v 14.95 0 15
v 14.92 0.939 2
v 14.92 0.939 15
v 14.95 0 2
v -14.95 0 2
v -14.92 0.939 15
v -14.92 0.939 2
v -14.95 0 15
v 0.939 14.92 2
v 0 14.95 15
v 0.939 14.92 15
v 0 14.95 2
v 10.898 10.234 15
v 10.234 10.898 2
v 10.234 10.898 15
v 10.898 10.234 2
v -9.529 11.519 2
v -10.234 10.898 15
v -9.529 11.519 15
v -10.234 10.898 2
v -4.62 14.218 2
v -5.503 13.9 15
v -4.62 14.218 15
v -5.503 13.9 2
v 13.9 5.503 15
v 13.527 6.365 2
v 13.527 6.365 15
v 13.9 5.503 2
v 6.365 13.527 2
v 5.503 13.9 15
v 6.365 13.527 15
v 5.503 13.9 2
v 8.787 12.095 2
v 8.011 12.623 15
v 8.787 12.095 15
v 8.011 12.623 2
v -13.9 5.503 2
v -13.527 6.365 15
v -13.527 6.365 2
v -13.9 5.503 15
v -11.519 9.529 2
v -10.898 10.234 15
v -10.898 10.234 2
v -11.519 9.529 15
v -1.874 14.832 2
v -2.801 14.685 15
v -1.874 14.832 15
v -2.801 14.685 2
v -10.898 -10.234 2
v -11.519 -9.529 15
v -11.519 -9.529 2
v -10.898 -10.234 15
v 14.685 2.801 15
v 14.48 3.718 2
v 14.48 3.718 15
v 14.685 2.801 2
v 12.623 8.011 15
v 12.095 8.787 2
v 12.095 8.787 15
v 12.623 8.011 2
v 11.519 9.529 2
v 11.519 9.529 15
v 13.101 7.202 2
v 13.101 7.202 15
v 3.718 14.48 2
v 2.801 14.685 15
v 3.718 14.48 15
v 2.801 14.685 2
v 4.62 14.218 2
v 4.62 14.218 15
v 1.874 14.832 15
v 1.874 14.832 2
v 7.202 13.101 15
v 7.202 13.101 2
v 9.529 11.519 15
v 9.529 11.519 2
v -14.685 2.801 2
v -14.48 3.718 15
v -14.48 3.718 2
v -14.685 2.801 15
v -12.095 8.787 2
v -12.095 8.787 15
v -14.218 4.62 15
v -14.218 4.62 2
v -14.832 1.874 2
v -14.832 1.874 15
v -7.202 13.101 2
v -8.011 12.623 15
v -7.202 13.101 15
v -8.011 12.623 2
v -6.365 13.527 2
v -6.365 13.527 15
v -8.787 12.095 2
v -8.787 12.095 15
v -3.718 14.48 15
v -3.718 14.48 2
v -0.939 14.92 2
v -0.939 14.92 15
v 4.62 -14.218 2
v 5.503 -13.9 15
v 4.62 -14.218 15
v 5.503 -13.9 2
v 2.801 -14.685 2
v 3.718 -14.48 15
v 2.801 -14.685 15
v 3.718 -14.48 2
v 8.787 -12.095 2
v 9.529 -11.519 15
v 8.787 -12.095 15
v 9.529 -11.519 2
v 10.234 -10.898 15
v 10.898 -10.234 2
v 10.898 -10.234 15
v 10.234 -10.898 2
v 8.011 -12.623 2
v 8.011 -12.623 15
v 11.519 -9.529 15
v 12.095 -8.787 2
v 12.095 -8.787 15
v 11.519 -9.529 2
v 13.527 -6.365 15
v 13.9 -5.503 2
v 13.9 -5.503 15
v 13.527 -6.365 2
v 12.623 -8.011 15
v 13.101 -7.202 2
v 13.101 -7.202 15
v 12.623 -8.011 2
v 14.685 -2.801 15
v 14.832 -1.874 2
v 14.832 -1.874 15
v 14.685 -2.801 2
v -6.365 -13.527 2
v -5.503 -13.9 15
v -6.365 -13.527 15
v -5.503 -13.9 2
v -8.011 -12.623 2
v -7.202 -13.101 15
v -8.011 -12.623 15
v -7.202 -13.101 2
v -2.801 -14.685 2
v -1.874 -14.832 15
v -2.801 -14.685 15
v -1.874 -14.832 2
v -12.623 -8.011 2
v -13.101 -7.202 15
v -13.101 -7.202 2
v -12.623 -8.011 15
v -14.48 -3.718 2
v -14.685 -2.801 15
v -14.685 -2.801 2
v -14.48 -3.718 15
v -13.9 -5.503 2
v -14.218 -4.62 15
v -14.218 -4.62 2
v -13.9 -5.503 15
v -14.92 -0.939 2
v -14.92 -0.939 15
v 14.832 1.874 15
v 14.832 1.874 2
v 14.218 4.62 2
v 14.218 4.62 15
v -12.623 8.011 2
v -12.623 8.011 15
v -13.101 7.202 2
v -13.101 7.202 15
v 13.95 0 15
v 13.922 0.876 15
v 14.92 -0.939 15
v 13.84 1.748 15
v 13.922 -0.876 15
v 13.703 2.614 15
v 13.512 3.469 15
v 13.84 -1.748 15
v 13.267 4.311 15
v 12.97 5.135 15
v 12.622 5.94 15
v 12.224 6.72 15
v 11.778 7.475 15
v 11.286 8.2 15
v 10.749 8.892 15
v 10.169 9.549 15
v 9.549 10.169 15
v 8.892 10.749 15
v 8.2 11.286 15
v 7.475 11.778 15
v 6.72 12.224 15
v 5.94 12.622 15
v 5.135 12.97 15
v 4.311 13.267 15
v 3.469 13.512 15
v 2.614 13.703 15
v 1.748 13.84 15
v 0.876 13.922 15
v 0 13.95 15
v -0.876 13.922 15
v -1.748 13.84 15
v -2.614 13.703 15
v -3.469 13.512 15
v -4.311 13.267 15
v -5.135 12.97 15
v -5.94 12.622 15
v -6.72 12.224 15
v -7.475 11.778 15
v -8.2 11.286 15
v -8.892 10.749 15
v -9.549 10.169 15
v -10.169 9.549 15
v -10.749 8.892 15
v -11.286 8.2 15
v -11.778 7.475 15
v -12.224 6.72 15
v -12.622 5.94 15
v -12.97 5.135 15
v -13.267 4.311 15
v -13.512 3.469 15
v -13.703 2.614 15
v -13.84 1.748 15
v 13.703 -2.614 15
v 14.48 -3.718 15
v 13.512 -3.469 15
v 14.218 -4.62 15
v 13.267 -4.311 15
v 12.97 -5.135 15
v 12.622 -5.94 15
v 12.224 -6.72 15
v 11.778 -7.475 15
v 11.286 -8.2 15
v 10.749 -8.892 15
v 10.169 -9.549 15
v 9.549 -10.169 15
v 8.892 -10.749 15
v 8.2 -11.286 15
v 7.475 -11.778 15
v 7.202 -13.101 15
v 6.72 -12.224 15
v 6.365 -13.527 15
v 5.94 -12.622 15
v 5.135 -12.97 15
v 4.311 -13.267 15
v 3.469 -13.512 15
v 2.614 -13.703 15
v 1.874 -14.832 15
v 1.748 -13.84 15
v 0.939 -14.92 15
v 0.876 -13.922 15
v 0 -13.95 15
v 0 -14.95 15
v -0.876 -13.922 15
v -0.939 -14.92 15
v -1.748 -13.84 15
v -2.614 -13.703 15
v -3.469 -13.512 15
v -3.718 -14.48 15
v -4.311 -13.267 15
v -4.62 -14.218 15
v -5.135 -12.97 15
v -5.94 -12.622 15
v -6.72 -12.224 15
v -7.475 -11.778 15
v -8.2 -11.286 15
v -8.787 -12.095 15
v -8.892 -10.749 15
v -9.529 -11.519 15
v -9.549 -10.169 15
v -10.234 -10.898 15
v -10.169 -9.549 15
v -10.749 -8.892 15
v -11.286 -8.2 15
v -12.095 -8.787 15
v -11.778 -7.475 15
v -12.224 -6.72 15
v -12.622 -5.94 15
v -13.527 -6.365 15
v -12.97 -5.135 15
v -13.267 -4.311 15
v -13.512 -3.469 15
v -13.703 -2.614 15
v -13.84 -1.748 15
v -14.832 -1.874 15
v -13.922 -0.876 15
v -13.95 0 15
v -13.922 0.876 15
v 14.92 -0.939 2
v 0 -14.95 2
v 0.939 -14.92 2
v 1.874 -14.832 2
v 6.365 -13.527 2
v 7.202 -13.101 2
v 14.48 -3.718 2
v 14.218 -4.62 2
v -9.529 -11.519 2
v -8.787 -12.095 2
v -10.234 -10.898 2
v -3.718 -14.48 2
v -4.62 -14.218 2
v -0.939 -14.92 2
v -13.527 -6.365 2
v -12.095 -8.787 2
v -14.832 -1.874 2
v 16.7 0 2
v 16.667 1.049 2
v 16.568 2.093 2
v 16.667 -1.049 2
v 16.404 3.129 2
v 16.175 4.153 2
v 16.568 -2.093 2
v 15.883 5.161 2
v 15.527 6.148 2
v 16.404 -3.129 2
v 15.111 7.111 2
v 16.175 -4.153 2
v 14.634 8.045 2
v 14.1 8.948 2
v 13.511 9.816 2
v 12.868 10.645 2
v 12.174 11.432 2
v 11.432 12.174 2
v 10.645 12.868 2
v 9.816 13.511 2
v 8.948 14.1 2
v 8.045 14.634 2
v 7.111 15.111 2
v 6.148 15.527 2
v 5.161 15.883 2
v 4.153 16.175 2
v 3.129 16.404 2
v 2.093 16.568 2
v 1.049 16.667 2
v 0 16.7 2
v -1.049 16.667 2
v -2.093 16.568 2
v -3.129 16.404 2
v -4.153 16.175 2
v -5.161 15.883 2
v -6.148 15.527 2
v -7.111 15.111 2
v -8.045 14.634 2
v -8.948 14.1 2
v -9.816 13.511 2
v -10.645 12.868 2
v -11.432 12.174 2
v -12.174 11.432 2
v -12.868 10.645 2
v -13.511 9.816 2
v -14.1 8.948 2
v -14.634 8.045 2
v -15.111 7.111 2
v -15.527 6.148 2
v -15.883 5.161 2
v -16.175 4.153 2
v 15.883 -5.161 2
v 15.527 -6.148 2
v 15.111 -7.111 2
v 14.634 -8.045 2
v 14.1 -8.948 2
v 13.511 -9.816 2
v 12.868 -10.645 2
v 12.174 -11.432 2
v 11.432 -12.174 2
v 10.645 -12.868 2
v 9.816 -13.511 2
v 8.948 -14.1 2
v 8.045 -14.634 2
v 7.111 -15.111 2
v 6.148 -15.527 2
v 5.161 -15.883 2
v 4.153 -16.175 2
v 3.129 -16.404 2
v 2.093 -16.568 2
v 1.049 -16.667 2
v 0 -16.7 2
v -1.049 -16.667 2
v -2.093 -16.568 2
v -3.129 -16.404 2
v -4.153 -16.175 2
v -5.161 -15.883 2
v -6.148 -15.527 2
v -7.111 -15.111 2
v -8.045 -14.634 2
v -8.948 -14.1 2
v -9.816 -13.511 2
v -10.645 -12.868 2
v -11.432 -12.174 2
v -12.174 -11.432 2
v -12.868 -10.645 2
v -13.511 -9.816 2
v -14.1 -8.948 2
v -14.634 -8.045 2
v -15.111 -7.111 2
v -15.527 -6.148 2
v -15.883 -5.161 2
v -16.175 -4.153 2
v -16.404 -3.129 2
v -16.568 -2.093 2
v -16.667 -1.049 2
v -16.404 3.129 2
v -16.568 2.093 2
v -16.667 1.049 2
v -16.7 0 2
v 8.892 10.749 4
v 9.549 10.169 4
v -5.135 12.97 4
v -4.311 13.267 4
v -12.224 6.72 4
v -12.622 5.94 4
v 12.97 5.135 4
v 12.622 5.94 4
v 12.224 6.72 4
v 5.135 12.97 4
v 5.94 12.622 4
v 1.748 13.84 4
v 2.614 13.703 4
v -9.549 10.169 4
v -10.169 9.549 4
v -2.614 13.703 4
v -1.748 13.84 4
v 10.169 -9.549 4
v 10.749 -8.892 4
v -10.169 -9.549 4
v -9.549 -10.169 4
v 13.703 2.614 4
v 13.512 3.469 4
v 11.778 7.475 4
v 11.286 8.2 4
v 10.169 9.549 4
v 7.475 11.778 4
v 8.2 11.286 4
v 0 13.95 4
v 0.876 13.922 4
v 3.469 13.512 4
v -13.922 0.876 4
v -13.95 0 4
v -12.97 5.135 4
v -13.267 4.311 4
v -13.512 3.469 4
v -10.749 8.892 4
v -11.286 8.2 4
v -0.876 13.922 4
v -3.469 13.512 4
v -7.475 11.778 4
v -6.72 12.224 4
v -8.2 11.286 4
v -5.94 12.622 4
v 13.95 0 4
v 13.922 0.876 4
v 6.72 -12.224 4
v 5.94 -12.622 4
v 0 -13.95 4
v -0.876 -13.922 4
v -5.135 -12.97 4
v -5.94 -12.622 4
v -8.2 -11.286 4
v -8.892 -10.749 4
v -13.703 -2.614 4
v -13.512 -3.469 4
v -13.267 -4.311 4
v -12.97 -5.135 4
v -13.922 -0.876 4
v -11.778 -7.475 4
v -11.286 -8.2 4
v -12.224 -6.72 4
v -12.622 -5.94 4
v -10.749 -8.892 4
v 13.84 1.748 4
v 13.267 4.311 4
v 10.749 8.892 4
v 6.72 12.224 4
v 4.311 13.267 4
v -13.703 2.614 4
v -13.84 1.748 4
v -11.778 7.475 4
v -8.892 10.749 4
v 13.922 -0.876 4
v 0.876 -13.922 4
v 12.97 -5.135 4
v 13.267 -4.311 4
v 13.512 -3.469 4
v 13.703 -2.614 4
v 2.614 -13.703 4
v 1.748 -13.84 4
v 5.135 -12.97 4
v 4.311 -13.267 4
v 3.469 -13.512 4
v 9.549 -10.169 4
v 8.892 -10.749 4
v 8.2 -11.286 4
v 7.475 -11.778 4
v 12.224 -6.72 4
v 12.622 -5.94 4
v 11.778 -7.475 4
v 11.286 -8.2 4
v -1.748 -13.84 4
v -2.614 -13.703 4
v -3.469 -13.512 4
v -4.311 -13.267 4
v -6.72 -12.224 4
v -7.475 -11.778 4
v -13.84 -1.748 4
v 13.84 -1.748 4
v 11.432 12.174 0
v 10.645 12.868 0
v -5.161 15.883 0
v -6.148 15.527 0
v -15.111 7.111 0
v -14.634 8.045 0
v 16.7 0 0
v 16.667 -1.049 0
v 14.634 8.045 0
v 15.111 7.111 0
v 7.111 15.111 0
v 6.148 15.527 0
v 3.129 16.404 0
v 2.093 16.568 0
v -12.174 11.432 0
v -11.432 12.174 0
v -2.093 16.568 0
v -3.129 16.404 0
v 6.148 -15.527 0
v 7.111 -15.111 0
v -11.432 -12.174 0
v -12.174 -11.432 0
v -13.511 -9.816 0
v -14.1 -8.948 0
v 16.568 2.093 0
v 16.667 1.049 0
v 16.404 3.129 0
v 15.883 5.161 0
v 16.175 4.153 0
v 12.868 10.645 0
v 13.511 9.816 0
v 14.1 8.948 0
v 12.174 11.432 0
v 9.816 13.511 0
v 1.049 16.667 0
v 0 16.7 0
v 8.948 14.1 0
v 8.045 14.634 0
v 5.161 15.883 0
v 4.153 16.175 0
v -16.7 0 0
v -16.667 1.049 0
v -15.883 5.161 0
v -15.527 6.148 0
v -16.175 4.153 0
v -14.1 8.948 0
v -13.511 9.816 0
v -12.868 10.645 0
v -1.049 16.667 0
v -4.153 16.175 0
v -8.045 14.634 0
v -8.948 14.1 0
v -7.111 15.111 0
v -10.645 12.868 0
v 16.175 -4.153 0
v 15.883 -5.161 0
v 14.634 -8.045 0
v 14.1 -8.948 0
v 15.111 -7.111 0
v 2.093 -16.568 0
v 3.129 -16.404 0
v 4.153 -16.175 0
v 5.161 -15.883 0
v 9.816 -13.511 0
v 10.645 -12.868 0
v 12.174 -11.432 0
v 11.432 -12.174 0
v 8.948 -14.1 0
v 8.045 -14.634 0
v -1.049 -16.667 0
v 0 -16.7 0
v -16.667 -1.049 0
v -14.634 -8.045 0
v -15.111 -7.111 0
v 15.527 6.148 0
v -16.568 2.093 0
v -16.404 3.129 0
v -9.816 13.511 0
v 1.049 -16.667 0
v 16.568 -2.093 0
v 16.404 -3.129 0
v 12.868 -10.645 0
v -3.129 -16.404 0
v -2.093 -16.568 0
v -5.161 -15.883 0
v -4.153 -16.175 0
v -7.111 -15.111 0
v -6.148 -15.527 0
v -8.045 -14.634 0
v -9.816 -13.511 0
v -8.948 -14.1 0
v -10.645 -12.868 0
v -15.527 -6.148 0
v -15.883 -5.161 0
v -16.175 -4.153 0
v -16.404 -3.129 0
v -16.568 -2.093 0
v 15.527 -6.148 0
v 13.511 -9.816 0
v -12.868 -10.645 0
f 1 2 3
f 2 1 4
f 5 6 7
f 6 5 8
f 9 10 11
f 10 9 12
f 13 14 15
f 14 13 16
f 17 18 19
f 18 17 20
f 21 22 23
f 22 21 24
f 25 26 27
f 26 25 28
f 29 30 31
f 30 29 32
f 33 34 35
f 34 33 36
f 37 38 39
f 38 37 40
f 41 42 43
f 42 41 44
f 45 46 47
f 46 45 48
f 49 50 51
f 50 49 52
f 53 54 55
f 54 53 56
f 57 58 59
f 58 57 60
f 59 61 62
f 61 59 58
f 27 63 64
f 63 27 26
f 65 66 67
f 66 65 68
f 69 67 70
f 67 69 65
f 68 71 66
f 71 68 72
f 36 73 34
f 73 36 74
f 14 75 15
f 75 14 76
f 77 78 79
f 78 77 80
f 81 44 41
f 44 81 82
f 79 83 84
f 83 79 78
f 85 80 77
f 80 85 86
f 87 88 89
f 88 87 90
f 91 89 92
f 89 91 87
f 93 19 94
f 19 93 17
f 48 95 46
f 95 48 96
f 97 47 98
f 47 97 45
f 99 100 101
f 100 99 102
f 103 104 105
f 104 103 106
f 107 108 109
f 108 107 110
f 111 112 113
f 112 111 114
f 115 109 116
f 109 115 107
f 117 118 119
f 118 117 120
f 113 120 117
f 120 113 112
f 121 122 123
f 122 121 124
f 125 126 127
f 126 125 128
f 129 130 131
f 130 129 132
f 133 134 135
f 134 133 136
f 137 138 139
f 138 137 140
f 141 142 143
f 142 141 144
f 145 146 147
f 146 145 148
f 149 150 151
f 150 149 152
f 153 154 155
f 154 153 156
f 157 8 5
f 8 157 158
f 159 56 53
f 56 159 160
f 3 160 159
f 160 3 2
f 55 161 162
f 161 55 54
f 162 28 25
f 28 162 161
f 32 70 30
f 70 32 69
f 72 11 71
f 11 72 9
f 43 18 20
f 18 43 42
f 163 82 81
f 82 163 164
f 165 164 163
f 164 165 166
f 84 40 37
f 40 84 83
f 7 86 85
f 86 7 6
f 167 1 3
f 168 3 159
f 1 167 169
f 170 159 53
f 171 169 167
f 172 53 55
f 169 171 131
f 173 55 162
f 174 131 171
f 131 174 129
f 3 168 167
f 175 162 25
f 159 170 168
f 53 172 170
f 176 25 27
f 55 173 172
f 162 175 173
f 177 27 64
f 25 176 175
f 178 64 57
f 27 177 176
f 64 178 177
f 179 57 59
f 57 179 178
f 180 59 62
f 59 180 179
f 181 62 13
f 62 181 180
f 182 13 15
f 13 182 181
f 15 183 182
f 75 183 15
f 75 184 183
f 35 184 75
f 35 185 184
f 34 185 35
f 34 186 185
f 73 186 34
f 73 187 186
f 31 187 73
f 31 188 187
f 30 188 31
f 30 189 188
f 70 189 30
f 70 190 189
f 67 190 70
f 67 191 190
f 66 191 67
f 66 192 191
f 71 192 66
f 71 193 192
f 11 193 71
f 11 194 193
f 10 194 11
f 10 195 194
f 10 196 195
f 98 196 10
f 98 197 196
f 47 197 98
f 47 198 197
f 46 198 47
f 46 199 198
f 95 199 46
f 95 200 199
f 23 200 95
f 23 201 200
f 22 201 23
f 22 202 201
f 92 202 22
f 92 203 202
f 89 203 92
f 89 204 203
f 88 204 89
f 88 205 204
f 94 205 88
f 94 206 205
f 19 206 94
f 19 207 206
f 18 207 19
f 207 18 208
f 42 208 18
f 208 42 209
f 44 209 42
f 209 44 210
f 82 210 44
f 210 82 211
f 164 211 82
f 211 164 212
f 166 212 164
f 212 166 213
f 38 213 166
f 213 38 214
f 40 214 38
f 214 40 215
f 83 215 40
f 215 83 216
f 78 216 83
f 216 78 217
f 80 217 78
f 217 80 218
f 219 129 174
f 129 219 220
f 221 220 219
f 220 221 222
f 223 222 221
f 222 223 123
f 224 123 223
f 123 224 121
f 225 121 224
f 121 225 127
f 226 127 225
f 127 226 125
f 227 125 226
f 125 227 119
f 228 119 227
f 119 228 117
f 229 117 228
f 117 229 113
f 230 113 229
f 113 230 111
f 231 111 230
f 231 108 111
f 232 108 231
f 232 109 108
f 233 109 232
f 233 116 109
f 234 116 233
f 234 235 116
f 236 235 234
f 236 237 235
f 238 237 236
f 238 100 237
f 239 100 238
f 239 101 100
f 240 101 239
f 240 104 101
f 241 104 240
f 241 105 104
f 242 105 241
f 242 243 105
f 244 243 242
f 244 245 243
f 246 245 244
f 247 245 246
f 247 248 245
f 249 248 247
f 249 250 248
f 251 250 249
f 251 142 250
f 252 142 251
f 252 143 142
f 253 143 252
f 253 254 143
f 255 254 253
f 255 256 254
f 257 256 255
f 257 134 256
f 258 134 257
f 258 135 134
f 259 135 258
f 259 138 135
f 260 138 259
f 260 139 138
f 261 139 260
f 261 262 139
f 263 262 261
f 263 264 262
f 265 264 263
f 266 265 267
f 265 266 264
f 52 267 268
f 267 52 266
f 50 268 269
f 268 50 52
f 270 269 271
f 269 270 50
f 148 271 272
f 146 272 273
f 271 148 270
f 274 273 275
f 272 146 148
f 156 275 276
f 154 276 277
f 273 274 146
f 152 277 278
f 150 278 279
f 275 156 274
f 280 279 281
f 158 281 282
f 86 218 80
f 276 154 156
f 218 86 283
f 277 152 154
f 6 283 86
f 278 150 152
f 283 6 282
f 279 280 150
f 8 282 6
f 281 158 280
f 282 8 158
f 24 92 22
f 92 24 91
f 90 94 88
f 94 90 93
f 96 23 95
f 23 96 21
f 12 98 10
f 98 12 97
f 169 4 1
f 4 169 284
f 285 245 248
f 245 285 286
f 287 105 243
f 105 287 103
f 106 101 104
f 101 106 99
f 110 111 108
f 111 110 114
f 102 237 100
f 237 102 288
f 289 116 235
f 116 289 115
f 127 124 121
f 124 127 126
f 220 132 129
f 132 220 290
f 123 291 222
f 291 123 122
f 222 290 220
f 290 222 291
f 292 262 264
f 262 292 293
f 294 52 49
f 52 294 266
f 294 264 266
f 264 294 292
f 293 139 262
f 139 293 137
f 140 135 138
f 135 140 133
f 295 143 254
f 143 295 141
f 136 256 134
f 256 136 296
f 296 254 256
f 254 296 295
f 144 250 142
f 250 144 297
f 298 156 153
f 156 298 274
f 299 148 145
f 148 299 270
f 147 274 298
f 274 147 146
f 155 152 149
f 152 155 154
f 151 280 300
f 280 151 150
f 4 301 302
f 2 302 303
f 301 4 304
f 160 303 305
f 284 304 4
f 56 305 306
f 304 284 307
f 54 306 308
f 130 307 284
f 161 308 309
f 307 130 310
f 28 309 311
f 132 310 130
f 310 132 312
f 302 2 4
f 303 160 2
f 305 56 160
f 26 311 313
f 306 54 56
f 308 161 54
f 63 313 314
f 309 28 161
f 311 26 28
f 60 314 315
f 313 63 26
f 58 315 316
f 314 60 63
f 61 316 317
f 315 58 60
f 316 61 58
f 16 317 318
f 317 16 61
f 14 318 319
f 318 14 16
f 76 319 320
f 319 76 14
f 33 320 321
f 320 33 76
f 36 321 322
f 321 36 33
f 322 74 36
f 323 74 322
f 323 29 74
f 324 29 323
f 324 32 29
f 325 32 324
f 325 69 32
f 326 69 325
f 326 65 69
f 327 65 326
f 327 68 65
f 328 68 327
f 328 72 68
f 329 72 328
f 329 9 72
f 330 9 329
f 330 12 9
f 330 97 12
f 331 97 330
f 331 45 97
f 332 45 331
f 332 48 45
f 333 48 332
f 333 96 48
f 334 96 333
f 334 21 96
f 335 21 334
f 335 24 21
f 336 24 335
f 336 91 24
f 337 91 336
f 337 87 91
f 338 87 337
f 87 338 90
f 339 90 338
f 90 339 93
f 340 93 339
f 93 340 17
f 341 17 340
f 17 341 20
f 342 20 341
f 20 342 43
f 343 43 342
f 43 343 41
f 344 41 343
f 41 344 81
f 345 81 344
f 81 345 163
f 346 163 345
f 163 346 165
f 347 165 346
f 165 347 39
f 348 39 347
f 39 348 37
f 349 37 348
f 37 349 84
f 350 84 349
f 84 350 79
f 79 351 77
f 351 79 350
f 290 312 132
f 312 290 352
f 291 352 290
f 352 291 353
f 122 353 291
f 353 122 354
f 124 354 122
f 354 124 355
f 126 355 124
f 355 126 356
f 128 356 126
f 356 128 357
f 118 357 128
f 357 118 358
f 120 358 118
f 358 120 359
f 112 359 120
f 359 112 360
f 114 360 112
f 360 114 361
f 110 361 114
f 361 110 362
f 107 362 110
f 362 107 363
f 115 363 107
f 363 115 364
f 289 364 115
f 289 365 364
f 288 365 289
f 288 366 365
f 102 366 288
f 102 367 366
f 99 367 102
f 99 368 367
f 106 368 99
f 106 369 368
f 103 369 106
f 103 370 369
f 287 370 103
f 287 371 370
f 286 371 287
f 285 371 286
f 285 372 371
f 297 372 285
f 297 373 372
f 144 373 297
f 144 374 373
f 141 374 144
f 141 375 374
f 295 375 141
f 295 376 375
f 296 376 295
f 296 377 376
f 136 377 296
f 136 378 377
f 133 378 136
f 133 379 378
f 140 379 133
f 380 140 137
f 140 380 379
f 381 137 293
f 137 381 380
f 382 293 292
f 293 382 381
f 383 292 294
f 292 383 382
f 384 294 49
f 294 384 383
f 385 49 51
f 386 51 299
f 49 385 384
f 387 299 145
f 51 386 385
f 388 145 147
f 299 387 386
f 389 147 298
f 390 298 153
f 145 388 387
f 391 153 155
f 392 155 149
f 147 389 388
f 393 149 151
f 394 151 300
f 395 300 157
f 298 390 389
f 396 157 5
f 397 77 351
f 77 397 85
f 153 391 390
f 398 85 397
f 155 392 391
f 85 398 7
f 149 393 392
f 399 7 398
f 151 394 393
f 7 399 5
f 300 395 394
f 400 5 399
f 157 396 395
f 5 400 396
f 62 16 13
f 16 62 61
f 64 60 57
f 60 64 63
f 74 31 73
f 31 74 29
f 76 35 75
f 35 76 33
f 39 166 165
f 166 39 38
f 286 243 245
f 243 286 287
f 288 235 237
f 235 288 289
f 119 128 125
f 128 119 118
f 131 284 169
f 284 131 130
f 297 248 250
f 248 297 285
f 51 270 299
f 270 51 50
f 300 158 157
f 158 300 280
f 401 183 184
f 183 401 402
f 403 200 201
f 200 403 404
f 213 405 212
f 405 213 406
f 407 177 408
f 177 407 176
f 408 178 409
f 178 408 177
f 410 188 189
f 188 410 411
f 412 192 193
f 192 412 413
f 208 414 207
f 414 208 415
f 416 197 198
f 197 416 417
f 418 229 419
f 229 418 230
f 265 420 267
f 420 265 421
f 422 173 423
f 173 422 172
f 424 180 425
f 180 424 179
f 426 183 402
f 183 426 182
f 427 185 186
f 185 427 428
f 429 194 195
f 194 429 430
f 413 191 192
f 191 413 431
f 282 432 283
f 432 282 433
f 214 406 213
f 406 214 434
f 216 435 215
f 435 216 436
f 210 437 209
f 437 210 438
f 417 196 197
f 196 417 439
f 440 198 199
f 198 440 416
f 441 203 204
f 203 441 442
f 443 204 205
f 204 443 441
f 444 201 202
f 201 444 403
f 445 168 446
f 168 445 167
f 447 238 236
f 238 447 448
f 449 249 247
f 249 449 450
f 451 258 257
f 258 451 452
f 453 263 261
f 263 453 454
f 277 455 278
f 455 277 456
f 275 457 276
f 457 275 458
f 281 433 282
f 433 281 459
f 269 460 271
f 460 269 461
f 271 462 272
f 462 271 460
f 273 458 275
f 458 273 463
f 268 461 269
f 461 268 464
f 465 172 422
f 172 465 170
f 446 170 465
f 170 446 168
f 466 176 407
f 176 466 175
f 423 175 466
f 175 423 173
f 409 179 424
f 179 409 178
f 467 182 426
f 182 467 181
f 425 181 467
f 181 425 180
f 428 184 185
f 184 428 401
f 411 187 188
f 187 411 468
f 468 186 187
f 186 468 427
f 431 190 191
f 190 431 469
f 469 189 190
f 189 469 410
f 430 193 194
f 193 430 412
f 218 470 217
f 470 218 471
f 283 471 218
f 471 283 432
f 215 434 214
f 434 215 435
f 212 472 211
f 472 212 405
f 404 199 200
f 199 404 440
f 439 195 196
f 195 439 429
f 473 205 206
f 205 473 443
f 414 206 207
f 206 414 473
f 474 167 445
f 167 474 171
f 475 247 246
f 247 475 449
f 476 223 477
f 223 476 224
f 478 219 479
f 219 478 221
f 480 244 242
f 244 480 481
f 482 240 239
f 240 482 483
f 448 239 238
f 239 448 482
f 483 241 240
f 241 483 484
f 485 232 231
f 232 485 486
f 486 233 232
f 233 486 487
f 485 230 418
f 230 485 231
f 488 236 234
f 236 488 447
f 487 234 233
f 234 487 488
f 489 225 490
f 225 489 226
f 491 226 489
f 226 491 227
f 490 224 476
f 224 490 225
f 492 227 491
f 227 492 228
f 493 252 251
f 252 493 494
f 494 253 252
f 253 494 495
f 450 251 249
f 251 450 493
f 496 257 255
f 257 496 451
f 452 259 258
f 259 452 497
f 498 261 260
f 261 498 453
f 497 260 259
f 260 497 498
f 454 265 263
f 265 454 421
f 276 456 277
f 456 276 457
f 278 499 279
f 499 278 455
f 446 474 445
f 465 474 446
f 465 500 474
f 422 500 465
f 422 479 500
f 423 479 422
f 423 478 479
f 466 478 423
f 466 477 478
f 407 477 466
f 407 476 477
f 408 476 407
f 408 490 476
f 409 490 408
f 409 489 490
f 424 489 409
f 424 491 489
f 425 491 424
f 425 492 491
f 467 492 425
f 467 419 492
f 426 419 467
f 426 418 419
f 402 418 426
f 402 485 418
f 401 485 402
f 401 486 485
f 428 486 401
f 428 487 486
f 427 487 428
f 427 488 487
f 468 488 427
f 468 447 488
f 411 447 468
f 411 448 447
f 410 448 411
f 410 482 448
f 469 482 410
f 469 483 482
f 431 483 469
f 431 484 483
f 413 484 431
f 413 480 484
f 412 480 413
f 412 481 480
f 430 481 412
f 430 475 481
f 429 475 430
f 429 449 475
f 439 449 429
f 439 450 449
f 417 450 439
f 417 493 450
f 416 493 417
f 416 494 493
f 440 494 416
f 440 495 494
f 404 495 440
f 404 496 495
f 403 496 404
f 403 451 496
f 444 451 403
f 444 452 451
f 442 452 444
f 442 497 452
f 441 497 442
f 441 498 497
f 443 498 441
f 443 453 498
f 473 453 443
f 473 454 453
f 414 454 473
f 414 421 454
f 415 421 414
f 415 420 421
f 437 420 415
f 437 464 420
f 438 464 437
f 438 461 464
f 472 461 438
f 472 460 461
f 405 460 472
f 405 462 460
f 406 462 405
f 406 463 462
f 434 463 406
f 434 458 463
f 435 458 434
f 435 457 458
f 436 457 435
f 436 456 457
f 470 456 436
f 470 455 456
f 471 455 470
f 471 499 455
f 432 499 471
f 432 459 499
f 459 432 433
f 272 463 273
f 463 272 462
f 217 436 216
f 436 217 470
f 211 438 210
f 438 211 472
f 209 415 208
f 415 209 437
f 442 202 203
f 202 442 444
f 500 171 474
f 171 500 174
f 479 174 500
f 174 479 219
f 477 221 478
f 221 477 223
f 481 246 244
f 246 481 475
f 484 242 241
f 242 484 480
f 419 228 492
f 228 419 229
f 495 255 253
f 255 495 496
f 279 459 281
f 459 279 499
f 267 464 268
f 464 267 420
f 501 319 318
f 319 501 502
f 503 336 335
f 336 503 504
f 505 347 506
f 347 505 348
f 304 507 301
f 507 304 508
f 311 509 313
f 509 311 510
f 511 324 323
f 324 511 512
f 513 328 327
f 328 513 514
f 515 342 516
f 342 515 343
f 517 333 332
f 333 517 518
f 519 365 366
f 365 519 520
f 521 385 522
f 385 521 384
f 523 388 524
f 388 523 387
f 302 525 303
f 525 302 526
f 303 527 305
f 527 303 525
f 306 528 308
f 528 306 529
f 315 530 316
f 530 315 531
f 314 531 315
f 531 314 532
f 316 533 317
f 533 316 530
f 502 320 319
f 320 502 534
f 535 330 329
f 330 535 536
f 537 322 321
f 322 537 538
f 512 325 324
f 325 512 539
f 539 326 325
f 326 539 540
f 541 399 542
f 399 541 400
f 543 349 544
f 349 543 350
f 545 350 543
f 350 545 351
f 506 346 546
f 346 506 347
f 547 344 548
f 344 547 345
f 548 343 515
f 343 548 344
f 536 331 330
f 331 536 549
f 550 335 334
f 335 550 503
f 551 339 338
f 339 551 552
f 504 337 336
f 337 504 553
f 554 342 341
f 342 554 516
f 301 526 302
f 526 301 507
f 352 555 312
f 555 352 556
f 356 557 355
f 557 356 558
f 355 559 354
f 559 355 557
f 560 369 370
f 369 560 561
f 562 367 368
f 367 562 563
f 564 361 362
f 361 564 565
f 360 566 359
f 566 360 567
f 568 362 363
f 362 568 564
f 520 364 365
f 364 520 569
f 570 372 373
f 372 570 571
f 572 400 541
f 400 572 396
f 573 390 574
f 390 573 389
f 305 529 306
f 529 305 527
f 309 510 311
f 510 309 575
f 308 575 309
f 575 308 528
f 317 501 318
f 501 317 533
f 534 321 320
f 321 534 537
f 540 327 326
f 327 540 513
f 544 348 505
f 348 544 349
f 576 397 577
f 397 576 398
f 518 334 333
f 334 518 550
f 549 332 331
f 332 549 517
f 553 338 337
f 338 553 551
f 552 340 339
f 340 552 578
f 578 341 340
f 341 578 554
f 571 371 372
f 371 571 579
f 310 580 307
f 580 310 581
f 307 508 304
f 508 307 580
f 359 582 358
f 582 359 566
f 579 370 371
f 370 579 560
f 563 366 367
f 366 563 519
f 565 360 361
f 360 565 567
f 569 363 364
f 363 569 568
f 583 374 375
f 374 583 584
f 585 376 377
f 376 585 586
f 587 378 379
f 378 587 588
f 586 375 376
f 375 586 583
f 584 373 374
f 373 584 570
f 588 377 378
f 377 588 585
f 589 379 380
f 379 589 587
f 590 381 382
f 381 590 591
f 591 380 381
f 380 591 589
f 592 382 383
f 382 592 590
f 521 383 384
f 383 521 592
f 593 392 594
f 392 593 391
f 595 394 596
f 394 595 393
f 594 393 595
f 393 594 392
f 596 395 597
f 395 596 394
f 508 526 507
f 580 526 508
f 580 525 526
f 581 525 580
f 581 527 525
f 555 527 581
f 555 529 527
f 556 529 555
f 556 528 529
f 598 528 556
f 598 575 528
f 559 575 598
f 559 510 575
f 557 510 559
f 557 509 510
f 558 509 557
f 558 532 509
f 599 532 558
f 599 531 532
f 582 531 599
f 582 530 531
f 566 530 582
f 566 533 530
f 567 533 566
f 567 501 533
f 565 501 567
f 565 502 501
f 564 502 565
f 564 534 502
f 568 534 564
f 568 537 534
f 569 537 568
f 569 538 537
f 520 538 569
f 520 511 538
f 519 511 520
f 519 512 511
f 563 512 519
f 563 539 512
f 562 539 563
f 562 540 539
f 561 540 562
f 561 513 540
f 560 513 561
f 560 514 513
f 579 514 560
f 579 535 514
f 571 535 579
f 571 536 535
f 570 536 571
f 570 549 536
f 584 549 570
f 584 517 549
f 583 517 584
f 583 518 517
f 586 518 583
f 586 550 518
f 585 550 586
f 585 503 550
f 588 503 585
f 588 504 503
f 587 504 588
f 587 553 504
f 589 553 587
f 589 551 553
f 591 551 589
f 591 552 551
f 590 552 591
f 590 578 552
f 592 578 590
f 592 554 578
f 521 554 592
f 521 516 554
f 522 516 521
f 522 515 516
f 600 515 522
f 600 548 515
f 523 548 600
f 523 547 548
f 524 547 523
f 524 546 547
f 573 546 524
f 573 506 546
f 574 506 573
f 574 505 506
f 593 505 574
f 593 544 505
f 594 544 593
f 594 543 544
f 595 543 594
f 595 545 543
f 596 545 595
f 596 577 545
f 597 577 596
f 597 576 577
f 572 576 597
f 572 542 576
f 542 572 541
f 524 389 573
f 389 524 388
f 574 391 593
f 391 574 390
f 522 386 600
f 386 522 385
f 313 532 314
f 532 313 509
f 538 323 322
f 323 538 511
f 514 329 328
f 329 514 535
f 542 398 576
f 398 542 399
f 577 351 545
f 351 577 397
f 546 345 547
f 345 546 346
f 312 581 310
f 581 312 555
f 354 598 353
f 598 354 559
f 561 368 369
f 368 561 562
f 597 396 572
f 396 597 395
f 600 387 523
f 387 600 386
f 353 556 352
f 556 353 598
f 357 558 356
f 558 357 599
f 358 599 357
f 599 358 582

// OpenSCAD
$fn=100;

// PVC cap

od = 33.4;
tubeThickness = 1.75;
capInnerThickness = 1.0;
capTopThickness = 2.0;
capHeight = 15.0;

id = od - tubeThickness*2;

cylinder(d=od, h=capTopThickness);
translate([0,0,capTopThickness]) {
    difference() {
        cylinder(d=id, h=capHeight - capTopThickness);
        
        translate([0,0,2])
        cylinder(d=id - capInnerThickness*2, h=capHeight - capTopThickness + 1);
    }
}
    
